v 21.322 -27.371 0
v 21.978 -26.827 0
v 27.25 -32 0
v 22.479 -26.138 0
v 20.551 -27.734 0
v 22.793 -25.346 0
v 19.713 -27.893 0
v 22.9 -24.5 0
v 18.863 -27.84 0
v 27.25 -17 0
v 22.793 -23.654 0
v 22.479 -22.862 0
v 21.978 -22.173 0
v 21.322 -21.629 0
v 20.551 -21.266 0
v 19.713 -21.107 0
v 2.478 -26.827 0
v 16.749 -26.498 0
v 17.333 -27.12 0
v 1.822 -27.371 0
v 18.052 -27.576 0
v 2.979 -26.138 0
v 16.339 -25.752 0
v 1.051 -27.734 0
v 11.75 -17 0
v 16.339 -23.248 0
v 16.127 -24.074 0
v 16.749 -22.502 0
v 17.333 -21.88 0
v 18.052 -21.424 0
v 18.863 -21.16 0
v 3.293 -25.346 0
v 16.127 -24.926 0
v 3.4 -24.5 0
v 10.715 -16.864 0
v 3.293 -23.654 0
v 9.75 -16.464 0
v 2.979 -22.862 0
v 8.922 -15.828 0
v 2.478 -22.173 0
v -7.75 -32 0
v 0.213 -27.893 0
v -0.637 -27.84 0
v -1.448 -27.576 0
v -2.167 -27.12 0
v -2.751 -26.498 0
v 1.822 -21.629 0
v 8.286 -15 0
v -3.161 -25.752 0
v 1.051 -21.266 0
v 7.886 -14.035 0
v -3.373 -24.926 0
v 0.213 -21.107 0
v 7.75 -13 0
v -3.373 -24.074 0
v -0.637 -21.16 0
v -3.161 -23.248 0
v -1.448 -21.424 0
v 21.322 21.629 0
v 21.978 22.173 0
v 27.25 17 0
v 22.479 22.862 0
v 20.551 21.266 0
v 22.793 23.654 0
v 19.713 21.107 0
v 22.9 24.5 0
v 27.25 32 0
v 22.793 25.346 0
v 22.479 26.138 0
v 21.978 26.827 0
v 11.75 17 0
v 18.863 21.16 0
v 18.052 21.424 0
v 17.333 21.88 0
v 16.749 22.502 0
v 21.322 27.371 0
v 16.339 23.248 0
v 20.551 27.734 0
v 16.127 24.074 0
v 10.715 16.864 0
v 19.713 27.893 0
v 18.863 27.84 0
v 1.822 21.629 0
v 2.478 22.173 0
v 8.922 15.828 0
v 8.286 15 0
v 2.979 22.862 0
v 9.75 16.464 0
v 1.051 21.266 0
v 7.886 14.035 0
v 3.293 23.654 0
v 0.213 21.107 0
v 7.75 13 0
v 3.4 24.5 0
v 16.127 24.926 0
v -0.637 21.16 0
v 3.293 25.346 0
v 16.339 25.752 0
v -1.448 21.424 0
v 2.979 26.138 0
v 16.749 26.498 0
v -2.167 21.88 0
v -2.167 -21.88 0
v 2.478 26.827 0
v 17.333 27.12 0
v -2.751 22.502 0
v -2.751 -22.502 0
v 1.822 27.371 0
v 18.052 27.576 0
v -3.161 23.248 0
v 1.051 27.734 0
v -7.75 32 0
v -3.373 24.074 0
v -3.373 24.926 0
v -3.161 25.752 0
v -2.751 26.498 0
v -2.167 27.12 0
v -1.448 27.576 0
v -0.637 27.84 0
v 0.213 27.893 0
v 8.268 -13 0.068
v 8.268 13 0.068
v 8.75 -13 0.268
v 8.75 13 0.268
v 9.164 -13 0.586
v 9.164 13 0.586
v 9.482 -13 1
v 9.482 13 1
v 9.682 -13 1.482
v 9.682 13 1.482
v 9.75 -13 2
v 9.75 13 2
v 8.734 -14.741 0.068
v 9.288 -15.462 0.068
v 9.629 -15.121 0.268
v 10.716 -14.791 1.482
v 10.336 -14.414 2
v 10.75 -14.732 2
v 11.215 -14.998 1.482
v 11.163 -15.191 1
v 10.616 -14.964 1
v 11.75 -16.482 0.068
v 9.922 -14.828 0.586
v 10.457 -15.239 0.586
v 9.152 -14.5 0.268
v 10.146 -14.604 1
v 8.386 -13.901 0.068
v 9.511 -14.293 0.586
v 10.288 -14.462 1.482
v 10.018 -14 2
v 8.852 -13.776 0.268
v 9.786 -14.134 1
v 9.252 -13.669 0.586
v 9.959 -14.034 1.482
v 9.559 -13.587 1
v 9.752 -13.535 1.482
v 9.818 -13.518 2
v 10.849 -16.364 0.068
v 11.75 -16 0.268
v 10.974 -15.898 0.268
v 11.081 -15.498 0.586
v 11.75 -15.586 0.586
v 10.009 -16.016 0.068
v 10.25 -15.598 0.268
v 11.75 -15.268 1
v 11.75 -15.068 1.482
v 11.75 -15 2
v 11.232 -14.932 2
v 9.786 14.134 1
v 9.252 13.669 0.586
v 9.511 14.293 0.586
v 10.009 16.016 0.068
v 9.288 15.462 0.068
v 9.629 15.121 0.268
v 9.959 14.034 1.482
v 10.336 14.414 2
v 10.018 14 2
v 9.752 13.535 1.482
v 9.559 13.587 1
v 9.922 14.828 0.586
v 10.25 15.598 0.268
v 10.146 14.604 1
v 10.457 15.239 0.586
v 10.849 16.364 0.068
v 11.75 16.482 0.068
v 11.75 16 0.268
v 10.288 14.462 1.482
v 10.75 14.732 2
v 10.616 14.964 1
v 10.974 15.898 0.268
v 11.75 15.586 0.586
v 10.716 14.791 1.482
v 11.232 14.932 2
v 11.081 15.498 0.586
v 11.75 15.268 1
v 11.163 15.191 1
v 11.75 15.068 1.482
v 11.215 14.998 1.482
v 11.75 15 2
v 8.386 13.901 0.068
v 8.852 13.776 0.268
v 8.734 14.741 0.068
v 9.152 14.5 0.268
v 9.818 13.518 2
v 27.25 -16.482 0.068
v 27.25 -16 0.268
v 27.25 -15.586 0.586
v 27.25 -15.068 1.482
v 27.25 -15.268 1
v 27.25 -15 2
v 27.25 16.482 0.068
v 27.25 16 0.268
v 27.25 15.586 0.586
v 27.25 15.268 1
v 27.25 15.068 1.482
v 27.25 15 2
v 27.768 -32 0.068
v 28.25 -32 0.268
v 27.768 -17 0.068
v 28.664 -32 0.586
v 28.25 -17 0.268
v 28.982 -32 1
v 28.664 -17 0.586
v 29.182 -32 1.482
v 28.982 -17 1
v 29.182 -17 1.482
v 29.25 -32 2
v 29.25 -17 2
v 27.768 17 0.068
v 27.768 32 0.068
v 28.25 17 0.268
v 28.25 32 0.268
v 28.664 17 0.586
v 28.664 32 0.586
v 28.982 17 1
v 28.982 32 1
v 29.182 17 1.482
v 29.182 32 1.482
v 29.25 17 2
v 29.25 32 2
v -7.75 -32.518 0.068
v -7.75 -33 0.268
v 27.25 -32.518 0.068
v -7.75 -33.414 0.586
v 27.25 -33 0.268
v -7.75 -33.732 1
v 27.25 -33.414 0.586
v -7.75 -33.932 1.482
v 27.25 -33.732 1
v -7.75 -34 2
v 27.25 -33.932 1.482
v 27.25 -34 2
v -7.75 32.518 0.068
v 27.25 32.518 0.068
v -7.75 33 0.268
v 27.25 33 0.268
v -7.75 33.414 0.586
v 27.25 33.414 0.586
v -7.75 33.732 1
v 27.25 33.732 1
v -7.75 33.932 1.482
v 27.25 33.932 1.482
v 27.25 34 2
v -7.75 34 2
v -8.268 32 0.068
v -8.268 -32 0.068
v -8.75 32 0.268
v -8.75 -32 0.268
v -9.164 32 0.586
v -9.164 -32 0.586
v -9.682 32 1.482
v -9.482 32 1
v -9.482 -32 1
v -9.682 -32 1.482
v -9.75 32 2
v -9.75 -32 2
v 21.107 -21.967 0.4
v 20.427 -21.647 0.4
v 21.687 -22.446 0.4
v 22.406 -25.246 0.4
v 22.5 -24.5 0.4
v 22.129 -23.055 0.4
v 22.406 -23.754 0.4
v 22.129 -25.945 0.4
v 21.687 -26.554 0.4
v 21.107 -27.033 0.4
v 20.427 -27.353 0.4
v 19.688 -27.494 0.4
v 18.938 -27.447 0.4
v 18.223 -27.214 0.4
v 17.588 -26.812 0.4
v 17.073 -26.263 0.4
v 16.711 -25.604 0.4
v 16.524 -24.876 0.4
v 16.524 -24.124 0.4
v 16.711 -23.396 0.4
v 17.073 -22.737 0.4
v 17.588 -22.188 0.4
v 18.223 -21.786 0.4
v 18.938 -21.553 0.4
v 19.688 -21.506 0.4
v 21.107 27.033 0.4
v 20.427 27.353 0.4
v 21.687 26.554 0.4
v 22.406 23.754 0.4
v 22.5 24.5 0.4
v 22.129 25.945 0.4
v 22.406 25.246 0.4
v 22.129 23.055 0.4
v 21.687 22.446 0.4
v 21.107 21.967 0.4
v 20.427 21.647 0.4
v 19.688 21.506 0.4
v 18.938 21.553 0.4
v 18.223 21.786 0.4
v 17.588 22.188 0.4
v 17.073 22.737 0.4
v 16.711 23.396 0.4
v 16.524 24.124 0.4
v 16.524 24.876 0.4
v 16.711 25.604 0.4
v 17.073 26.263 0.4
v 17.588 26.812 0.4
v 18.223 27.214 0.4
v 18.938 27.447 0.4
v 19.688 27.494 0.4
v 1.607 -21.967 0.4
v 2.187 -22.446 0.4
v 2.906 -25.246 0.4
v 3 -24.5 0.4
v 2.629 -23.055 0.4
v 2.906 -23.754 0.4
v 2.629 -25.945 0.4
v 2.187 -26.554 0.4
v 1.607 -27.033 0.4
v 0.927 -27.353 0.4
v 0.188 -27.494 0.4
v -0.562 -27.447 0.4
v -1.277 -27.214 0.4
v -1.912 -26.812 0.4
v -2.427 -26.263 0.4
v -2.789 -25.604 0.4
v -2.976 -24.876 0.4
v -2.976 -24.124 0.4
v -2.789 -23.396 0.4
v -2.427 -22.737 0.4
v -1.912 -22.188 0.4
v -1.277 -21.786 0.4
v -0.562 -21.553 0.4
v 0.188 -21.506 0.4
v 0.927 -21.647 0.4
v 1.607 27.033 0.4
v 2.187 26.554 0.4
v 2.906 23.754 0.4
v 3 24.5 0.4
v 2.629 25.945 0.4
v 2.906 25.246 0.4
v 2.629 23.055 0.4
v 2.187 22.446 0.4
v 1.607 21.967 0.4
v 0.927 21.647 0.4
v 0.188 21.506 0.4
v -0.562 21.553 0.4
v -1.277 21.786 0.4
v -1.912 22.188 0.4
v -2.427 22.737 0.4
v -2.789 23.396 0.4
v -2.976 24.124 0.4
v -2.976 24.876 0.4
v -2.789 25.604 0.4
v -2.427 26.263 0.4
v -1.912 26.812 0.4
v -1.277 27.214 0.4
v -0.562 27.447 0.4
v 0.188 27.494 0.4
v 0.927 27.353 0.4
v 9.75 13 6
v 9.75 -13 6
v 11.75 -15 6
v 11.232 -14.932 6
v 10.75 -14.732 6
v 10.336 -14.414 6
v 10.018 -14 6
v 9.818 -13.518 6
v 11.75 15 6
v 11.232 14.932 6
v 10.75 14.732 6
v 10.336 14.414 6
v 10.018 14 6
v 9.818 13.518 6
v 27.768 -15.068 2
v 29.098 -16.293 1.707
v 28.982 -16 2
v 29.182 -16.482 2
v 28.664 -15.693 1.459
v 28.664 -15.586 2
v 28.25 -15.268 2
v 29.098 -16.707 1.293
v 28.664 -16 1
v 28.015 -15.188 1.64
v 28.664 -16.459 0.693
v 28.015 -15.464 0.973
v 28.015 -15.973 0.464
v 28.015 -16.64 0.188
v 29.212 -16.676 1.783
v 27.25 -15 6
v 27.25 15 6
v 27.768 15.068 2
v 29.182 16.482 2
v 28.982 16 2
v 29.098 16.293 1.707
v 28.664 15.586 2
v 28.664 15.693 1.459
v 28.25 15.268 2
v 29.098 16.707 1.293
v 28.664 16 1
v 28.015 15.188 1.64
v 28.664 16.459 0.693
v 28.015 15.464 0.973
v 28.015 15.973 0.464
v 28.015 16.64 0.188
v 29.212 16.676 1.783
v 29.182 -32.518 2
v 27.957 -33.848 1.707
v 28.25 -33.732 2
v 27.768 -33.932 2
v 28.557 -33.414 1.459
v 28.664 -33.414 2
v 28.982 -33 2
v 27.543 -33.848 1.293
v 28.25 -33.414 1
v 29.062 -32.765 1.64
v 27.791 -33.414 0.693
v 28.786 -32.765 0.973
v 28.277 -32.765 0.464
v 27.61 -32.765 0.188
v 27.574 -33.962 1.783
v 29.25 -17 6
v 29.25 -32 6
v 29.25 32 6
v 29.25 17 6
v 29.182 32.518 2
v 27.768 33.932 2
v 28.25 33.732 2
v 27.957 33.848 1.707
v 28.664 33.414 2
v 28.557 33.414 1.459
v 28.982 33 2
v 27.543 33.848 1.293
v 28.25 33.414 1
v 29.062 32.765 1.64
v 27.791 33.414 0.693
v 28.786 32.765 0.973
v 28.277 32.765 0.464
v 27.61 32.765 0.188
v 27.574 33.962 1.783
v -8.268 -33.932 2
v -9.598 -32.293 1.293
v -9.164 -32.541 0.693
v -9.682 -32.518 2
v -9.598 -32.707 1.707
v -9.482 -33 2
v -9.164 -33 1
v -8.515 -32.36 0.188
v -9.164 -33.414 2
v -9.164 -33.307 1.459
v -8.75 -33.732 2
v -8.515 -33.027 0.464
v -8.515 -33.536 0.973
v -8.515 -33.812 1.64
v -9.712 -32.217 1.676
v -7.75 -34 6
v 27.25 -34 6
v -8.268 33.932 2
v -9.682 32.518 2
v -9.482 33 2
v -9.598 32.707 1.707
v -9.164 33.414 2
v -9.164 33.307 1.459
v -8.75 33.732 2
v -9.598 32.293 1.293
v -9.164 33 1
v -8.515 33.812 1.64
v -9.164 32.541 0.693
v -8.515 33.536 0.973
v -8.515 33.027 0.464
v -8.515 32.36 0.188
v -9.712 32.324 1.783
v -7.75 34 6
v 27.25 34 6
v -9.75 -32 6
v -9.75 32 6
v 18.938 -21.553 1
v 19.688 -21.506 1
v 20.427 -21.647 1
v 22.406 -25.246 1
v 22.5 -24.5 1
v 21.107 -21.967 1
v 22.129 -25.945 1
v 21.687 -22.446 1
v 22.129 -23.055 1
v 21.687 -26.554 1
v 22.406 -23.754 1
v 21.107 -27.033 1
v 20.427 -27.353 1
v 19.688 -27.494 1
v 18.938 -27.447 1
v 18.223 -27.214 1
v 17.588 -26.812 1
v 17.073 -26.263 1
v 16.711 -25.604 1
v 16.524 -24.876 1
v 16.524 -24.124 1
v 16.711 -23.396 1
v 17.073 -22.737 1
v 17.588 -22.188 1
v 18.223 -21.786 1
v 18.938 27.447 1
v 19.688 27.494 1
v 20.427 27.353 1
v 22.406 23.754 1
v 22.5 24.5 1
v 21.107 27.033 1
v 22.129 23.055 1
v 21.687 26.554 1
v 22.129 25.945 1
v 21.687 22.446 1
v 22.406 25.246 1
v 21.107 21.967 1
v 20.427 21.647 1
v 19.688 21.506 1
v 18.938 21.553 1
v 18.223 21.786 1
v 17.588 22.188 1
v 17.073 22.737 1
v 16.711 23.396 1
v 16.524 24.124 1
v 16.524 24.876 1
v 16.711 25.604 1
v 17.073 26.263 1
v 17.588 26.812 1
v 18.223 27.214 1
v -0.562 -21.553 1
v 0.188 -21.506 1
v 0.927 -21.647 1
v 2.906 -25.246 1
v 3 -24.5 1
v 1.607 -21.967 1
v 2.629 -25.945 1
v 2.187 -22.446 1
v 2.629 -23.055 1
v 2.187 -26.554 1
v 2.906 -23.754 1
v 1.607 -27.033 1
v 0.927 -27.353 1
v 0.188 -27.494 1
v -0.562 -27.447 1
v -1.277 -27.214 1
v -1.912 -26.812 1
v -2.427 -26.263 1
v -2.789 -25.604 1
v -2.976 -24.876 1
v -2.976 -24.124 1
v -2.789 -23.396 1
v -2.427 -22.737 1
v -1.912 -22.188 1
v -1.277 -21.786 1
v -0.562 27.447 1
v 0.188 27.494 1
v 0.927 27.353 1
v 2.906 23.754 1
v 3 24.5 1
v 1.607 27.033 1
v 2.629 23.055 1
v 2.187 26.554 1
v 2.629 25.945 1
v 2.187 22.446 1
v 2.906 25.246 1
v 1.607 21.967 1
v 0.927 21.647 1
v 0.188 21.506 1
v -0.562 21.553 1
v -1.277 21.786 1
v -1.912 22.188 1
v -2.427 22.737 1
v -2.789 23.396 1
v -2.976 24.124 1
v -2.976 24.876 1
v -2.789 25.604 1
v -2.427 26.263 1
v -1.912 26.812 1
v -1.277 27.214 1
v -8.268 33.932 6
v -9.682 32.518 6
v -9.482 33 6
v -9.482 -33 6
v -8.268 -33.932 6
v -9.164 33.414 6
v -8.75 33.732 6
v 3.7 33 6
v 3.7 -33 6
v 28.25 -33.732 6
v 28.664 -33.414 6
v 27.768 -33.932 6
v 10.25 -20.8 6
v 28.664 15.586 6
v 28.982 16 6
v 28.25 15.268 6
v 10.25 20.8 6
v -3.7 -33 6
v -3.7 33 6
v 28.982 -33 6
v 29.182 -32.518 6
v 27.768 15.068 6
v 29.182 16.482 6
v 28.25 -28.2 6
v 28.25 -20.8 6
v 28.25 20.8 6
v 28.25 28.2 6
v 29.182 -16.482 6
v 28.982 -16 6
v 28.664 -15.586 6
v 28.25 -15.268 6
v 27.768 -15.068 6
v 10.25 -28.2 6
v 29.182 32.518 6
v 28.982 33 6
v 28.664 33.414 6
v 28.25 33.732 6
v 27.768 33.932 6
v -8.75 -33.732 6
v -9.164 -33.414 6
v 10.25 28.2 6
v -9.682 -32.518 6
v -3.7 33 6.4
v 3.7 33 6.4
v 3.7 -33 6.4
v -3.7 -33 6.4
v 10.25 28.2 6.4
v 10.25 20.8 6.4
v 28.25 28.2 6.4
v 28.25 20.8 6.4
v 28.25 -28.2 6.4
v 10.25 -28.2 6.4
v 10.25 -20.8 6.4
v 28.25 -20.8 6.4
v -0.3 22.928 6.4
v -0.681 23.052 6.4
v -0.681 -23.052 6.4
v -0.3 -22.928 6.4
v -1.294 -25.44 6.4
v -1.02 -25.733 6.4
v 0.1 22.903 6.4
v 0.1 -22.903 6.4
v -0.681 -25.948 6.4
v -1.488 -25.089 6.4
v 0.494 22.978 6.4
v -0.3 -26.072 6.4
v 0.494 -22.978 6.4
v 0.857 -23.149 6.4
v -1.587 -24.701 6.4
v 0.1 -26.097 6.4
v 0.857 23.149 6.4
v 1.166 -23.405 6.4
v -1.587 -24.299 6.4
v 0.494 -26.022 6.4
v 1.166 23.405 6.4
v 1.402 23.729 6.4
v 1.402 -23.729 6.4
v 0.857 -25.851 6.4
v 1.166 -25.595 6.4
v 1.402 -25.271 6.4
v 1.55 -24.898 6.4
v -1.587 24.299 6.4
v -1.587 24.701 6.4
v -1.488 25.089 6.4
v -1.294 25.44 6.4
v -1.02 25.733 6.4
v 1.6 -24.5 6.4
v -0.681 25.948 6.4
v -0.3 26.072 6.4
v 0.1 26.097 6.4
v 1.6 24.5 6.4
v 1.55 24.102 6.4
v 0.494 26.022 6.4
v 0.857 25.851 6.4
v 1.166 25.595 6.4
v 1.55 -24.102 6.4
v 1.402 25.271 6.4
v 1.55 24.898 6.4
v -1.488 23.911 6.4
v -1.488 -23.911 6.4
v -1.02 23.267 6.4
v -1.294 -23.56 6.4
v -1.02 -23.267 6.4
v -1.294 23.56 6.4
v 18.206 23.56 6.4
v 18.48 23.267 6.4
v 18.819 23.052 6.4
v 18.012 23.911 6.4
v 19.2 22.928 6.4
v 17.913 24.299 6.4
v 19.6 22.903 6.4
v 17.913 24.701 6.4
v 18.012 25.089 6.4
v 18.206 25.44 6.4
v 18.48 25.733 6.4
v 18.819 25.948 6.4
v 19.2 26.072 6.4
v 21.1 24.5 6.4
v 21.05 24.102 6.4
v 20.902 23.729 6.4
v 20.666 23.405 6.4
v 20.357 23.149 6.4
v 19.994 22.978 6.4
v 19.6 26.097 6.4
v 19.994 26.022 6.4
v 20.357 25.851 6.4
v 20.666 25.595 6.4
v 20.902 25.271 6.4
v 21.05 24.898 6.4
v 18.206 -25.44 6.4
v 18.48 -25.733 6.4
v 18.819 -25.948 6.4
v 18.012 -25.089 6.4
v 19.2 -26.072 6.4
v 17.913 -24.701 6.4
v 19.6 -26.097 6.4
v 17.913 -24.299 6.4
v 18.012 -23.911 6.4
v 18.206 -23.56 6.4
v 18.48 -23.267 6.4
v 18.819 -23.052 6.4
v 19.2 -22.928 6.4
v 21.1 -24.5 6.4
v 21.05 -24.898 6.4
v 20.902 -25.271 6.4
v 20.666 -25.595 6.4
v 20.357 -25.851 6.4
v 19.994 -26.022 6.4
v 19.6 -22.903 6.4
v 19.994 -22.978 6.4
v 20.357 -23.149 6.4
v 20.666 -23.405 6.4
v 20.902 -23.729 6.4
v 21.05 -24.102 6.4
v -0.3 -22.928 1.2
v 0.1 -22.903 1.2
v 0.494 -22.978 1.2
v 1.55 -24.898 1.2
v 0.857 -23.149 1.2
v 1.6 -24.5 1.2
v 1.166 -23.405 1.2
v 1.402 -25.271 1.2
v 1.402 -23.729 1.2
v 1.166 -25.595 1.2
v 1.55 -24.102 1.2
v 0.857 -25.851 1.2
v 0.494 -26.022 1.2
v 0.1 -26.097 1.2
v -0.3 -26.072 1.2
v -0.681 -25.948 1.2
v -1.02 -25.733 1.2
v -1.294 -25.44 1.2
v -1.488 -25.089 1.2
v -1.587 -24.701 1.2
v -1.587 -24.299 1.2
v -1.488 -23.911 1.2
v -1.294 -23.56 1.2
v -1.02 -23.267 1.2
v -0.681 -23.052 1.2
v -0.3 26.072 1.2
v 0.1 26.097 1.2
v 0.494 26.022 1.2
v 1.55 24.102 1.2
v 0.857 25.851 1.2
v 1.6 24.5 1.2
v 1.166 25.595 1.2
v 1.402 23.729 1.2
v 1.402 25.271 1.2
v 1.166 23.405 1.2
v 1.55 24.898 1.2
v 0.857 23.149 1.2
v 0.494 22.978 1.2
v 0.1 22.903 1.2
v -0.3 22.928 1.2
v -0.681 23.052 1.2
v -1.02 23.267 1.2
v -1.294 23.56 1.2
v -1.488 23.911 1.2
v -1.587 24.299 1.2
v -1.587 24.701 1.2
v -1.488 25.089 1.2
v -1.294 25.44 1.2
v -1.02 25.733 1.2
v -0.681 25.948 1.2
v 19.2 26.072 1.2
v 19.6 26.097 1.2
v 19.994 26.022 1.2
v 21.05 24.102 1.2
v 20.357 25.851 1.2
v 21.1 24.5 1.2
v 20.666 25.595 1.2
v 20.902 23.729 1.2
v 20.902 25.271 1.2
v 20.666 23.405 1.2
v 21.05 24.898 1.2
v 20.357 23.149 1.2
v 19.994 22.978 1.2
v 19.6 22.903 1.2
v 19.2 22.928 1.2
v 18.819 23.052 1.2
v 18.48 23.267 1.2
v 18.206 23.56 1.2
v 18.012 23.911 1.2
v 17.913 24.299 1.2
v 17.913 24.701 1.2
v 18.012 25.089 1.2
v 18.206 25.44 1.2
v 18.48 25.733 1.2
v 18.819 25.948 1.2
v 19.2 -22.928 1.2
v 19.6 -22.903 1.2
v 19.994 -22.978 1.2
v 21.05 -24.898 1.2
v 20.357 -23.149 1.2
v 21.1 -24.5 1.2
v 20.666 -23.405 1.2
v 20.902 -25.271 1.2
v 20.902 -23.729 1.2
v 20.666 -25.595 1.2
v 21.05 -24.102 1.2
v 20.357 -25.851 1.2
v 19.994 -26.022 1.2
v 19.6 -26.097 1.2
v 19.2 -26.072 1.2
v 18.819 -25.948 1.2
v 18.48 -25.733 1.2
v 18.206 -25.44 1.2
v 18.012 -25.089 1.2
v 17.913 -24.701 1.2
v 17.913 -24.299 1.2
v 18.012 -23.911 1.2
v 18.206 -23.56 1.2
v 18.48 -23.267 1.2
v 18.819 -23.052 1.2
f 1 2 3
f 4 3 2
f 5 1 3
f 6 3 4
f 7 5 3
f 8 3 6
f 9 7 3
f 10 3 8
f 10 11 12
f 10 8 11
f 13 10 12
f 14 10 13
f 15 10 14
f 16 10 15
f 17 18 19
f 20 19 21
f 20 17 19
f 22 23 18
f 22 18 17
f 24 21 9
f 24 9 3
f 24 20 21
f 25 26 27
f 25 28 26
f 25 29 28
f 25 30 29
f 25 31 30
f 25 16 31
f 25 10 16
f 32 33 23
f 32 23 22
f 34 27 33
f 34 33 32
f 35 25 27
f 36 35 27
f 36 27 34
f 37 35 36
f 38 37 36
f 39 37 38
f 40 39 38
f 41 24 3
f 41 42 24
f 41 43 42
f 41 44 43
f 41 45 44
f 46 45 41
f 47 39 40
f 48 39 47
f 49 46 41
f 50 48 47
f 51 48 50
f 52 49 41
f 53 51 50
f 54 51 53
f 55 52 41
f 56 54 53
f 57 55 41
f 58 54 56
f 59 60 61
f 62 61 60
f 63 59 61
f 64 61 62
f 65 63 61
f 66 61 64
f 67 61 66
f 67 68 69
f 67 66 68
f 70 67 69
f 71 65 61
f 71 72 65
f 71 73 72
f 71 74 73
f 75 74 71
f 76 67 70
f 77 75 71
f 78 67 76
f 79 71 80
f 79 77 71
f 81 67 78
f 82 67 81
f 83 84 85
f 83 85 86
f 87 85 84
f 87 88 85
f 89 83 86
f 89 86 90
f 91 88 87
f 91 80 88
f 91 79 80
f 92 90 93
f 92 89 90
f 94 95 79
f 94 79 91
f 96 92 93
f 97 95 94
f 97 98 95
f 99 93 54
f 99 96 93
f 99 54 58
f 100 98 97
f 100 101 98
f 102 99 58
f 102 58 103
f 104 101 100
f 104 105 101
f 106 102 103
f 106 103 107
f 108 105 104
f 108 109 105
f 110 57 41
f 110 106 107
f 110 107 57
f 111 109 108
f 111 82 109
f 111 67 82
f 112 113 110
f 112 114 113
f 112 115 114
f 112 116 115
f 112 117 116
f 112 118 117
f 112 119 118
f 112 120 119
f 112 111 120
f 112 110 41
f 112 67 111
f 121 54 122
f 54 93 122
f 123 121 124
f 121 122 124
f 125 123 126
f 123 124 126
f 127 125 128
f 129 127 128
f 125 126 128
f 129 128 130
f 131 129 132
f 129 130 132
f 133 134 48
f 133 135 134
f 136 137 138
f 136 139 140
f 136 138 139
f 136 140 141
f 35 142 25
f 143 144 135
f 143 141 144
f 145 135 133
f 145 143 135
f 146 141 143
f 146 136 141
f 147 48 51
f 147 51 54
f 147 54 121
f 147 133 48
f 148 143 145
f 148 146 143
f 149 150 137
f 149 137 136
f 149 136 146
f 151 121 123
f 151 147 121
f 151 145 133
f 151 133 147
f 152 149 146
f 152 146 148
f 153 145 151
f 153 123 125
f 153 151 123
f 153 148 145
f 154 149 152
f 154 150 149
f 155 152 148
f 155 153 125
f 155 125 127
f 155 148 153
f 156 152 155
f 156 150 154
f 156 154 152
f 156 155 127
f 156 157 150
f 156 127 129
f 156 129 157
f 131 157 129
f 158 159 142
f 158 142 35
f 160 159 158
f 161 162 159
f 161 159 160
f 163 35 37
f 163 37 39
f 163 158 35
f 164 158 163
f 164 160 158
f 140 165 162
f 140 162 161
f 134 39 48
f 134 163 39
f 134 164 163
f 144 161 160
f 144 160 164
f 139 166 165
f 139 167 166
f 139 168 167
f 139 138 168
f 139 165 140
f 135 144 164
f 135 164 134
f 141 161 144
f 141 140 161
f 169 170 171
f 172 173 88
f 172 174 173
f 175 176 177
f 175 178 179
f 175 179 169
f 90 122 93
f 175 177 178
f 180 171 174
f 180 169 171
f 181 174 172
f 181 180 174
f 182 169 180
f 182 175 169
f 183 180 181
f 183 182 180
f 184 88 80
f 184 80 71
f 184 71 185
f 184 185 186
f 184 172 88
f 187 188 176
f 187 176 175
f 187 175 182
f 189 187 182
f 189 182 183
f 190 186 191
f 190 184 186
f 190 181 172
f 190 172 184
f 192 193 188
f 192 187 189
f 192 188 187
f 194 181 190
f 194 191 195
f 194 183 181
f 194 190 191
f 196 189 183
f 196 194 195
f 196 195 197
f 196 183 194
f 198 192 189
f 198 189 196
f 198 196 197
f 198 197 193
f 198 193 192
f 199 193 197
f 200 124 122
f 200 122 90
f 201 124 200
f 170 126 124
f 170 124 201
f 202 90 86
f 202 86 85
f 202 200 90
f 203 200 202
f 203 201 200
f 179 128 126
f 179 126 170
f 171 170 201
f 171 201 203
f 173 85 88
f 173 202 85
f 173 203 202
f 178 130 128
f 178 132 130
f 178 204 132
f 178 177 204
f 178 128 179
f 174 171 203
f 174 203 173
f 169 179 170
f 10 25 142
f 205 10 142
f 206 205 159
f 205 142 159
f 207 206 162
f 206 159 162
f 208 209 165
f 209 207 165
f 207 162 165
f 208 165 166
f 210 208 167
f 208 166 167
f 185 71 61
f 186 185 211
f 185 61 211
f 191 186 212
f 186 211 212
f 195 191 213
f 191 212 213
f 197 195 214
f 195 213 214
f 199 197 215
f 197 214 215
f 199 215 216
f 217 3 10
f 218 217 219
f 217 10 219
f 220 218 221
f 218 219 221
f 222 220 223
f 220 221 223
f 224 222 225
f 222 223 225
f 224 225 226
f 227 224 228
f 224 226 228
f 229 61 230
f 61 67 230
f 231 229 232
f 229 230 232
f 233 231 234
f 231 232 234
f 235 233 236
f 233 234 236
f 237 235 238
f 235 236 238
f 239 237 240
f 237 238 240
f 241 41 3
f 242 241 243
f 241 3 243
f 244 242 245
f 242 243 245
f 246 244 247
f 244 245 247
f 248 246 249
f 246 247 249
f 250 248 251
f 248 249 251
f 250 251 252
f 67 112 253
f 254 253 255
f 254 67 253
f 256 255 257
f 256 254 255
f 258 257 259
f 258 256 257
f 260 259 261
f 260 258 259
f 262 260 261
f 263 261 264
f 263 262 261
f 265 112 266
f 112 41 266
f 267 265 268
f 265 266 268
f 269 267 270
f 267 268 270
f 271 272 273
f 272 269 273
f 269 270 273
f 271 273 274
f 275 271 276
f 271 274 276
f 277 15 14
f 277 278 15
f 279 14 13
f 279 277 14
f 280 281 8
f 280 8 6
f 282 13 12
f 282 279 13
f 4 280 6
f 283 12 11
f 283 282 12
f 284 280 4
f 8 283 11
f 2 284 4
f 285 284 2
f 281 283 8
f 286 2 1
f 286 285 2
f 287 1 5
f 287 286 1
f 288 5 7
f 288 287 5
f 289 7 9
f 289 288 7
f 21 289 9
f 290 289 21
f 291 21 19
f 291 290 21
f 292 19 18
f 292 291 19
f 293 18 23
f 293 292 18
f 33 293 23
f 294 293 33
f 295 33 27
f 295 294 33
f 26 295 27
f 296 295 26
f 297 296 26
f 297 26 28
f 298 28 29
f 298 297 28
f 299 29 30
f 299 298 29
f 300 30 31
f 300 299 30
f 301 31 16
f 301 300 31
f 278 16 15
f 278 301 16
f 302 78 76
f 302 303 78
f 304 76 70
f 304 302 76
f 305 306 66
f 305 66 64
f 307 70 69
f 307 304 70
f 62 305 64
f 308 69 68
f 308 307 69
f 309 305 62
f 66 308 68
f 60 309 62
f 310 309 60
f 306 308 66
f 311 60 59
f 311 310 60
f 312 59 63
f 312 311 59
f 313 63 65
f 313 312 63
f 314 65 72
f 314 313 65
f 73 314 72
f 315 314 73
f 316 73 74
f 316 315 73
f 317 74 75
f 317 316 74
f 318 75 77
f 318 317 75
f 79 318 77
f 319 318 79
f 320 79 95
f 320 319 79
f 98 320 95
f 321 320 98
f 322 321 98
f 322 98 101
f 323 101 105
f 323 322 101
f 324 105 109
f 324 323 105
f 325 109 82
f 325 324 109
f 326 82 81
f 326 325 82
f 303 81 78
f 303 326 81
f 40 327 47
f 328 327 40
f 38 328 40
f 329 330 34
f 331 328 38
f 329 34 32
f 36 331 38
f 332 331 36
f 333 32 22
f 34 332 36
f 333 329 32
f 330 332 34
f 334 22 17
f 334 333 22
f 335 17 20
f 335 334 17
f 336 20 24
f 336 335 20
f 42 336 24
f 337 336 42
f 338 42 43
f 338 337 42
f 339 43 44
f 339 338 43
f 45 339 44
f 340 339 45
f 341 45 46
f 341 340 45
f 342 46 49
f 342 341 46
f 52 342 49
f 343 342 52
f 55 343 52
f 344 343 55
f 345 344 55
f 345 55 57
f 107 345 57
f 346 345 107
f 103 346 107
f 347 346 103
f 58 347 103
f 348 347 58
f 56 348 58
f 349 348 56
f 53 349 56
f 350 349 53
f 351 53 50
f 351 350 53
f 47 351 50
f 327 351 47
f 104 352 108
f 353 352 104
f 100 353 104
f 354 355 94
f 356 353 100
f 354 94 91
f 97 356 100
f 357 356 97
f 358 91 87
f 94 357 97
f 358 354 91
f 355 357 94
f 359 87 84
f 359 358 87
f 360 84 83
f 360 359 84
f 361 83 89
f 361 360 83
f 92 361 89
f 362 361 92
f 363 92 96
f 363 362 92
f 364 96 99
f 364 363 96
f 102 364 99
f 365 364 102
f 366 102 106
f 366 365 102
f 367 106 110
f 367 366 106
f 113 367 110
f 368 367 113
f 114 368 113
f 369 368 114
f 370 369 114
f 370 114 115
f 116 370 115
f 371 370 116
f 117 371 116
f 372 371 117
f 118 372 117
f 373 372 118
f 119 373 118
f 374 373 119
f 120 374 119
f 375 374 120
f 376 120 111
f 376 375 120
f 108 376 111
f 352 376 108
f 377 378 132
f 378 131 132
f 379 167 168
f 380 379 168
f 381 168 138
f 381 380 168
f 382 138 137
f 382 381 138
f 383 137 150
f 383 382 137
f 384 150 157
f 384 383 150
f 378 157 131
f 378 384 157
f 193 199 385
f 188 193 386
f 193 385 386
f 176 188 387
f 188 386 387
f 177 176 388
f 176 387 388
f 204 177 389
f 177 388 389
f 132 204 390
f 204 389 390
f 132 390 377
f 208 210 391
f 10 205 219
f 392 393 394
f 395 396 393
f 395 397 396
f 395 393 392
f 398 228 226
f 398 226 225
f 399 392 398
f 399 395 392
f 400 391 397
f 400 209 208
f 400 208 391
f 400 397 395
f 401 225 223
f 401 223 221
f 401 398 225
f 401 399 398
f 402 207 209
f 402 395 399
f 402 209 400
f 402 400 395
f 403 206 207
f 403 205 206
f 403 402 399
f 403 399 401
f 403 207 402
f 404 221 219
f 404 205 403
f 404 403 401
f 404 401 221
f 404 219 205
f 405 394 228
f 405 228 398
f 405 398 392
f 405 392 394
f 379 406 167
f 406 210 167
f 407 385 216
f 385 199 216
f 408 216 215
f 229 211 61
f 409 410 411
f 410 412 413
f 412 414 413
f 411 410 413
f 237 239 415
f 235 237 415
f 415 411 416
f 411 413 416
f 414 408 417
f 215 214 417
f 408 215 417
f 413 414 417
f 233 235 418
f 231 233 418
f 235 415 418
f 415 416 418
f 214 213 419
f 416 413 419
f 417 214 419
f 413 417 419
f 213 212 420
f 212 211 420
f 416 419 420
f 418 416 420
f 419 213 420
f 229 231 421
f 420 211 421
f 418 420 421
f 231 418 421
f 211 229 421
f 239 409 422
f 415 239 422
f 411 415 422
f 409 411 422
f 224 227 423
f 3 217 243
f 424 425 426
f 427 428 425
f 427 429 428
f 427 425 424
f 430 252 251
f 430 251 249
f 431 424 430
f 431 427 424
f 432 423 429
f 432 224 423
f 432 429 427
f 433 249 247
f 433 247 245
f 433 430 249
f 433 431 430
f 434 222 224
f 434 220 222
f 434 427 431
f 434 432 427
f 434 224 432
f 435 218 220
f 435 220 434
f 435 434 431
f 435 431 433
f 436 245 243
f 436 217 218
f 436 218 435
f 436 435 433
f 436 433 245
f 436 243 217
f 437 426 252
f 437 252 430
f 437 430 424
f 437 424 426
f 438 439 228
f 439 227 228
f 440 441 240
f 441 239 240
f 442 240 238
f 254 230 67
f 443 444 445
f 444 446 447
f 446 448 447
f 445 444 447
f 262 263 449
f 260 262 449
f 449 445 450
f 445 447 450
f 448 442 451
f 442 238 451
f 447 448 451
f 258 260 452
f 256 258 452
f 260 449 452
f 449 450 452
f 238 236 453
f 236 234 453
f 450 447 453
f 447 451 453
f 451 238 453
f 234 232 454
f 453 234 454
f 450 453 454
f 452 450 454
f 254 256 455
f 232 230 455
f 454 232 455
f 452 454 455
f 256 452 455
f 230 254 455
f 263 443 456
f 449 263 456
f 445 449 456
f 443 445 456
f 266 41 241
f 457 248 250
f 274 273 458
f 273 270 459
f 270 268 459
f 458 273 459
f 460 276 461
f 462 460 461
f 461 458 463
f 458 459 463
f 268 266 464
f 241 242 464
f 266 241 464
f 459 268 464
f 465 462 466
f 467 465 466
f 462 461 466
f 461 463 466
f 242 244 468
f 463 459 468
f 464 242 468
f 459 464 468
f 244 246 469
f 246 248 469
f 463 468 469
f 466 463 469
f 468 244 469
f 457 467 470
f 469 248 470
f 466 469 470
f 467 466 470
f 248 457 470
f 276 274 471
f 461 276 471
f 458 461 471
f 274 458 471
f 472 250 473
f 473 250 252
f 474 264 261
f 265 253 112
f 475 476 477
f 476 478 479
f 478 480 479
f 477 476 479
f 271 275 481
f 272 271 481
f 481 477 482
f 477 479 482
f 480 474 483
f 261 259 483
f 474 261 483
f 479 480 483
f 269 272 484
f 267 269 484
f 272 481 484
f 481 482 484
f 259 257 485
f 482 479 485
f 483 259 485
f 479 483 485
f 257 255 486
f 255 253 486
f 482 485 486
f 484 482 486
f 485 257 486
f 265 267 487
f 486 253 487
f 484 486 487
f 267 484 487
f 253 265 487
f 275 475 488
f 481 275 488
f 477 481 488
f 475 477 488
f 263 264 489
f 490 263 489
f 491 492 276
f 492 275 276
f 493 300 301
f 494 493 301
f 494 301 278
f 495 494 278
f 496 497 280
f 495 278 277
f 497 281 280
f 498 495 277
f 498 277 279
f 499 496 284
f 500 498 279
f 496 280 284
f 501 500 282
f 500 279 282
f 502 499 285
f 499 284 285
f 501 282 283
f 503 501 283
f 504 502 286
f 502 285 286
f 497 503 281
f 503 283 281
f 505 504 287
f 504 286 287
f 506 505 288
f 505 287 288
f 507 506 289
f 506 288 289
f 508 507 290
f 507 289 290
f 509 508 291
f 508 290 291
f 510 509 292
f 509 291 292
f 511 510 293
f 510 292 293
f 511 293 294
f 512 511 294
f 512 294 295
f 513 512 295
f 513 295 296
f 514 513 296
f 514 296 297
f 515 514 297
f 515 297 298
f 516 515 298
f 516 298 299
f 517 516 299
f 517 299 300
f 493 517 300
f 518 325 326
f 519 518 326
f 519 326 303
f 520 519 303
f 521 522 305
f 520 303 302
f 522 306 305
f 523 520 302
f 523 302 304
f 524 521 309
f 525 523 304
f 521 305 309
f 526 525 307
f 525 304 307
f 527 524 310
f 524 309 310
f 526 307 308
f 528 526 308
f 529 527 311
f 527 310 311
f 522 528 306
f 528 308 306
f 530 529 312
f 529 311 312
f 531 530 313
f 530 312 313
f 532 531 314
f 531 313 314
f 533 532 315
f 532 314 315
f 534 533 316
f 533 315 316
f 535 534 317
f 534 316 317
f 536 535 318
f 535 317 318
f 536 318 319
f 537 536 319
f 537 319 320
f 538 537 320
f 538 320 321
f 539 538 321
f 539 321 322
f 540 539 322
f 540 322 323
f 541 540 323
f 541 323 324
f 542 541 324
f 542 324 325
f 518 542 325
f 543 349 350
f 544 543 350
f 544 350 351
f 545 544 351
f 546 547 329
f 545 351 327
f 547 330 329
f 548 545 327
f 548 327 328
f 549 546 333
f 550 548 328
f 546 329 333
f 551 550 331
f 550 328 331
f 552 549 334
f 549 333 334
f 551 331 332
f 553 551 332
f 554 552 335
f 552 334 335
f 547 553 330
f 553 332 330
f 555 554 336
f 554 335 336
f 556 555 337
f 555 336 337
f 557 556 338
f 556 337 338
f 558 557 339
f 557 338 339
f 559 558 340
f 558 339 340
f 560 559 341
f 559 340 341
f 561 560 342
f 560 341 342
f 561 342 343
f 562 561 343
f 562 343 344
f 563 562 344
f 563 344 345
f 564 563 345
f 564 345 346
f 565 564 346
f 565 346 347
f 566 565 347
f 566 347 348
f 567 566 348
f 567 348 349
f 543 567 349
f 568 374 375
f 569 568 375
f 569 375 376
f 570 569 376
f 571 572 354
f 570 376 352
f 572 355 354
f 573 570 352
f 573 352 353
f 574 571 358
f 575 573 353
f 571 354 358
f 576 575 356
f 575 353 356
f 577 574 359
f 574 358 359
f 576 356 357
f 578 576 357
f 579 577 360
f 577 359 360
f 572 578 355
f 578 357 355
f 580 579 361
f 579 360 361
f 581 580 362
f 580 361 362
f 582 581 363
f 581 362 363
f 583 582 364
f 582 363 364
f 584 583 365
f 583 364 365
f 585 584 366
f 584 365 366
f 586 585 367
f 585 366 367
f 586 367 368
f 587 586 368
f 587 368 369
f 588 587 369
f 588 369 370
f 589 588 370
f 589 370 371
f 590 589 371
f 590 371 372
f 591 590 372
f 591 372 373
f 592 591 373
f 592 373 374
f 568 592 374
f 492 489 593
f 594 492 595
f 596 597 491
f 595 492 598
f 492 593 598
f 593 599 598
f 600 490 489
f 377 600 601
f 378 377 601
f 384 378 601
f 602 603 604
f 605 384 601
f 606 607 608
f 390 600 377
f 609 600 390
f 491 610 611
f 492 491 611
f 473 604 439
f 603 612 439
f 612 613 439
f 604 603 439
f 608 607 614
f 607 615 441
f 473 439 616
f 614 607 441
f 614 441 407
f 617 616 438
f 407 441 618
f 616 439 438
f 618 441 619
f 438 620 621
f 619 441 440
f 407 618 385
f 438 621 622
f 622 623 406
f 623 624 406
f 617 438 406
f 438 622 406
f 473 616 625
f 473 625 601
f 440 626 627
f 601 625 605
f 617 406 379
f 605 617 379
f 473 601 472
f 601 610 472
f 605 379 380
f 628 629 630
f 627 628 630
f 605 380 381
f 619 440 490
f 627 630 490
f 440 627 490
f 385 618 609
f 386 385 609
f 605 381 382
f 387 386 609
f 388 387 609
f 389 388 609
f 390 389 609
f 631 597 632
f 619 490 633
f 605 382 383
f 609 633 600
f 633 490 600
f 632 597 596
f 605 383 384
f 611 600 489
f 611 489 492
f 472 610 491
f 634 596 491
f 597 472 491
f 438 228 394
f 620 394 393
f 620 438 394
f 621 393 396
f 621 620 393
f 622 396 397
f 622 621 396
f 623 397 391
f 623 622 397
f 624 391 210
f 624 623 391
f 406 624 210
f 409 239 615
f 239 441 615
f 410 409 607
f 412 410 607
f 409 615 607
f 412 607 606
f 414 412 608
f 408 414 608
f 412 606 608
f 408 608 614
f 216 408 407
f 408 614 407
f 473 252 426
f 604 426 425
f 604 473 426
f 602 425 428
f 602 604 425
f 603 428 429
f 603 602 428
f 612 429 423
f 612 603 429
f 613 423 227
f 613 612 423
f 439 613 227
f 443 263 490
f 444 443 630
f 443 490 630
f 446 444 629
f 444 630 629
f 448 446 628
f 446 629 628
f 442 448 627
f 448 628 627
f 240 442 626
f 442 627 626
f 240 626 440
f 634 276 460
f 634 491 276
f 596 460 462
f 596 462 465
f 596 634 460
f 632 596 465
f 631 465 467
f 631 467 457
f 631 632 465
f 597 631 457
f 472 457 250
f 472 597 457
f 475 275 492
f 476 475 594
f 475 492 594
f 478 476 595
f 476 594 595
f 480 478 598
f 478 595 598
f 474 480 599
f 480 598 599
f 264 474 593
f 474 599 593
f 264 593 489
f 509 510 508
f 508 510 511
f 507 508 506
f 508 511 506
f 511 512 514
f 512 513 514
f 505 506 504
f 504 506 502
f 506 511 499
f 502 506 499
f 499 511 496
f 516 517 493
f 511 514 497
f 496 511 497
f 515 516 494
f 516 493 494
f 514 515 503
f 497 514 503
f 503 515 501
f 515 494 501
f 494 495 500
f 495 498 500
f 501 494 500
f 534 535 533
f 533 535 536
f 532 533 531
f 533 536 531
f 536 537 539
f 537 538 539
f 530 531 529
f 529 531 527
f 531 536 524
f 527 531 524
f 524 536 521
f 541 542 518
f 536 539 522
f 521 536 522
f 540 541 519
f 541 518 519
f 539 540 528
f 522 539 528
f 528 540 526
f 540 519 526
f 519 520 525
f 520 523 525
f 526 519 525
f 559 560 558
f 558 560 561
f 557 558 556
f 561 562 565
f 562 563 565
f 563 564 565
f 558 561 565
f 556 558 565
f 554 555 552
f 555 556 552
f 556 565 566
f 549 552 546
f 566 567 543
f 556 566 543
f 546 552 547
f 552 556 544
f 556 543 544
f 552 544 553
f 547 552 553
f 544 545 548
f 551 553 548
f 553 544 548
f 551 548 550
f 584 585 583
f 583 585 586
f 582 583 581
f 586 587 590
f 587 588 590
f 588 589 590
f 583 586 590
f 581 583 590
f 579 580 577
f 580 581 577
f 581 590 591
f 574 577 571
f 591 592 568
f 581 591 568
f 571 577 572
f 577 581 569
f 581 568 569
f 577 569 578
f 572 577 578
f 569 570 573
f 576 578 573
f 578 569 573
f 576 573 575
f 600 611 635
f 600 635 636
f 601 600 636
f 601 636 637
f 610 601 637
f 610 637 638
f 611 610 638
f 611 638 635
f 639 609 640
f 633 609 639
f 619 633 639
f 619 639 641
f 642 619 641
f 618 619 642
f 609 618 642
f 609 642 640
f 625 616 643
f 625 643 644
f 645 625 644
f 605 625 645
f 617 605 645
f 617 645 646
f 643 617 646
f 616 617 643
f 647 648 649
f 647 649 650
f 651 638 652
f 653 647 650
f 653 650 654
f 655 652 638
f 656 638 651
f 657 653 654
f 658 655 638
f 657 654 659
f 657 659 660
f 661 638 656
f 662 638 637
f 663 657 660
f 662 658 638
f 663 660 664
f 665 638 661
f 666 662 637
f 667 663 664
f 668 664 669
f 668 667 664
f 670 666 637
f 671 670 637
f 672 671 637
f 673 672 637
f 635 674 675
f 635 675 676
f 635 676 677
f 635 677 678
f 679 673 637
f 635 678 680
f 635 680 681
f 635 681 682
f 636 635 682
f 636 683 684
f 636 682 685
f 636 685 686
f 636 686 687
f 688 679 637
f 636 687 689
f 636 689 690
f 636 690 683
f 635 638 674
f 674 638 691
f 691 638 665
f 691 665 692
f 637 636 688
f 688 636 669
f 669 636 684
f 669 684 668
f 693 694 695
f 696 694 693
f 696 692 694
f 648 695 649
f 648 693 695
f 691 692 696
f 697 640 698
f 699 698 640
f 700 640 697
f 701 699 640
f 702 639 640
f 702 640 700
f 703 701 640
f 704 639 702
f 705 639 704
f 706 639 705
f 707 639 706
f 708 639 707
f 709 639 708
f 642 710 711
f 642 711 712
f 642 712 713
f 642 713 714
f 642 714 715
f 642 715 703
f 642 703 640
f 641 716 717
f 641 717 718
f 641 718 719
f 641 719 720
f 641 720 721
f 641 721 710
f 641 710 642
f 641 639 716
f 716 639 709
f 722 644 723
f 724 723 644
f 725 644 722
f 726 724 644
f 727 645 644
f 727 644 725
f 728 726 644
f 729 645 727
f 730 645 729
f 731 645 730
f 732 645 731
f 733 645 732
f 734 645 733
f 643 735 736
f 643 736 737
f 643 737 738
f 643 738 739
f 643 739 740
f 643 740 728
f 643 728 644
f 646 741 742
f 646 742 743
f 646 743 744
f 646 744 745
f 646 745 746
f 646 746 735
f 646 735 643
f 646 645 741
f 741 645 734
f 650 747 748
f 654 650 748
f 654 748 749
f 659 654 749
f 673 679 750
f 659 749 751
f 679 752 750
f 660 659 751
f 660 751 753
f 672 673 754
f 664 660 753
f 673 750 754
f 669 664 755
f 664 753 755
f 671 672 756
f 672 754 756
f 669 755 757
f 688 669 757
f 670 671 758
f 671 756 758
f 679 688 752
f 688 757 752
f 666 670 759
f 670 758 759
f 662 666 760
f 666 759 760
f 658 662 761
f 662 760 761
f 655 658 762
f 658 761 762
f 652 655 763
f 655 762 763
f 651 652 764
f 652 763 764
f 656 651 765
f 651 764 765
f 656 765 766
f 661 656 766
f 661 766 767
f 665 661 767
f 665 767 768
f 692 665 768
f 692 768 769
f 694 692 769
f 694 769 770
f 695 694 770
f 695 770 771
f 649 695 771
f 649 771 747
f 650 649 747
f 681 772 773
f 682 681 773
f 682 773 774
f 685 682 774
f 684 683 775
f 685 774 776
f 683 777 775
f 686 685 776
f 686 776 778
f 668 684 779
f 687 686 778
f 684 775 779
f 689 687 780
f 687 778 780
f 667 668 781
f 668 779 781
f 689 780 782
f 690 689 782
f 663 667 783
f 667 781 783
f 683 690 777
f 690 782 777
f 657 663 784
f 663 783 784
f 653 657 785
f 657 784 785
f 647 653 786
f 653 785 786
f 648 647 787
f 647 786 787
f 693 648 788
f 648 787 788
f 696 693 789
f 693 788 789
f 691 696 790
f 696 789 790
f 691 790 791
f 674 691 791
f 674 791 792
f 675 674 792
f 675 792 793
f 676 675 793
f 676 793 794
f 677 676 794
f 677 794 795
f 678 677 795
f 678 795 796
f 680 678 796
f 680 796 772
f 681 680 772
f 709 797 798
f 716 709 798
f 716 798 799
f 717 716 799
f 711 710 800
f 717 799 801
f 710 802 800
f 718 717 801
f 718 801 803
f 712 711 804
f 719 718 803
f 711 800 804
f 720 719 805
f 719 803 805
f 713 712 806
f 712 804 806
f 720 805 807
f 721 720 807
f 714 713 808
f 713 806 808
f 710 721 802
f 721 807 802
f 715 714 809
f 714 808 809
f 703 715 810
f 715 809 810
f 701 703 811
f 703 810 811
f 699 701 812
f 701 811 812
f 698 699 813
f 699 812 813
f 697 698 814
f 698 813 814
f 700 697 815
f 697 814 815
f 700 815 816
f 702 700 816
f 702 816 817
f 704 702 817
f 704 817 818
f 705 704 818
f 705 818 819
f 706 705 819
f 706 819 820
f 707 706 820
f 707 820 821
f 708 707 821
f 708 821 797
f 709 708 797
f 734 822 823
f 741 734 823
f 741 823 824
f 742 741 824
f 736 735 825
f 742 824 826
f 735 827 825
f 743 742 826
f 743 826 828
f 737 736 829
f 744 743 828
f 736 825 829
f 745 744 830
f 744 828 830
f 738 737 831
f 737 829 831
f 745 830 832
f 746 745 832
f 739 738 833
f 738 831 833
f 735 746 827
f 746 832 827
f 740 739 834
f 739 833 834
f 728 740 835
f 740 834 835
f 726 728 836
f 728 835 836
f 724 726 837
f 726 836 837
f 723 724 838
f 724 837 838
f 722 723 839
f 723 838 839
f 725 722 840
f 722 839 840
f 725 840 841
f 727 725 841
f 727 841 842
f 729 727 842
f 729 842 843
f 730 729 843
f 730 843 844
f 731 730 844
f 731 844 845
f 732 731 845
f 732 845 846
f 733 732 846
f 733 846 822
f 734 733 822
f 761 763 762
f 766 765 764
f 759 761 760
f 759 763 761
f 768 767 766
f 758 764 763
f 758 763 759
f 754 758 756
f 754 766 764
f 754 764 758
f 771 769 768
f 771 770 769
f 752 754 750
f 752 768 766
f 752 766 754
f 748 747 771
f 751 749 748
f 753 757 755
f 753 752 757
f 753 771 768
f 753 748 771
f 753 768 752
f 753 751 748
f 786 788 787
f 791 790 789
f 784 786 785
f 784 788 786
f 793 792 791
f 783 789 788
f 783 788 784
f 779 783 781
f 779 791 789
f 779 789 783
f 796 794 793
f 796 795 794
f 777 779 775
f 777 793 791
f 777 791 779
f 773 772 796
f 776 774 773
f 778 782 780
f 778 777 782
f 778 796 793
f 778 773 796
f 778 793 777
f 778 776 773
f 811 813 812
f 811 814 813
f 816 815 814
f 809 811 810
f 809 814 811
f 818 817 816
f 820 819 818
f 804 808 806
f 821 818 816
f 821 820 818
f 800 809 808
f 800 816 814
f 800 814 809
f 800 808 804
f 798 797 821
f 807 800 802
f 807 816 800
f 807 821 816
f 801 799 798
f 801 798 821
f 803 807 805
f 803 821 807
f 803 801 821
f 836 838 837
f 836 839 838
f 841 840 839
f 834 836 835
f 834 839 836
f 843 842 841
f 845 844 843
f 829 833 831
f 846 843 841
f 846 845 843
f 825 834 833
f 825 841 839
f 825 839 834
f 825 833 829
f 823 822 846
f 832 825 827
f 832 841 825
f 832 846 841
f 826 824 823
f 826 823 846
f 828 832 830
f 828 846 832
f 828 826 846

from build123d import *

# Parameters (mm, degrees)
PAD_DEPTH       = 6
SKETCH002_W     = 7.4
SKETCH002_H     = 66
SKETCH002_W_2   = 18
SKETCH002_H_2   = 7.4
PAD001_DEPTH    = 0.4
SKETCH003_R     = 1.6
POCKET_DEPTH    = 6.401
SKETCH004_R     = 3
POCKET001_DEPTH = 1
SKETCH005_R     = 4
PAD002_DEPTH    = 0.2
CHAMFER_SIZE    = 0.4
FILLET_R        = 2


with BuildPart() as part:
    # Sketch → Pad (new body)
    with BuildSketch(Plane.XY):
        Polygon((-9.75, 34), (-9.75, -34), (29.25, -34), (29.25, -15), (9.75, -15), (9.75, 15), (29.25, 15), (29.25, 34), (9.75, 34), align=None)
    extrude(amount=PAD_DEPTH)

    # Sketch002 → Pad001 (new body)
    with BuildSketch(Plane.XY.offset(6)):
        Rectangle(SKETCH002_W, SKETCH002_H)
        with Locations((19.25, 24.5)):
            Rectangle(SKETCH002_W_2, SKETCH002_H_2)
        with Locations((19.25, -24.5)):
            Rectangle(SKETCH002_W_2, SKETCH002_H_2)
    extrude(amount=PAD001_DEPTH)

    # Sketch003 → Pocket (cut, through all)
    with BuildSketch(Plane(origin=(0, 0, 0), x_dir=(1, 0, 0), z_dir=(0, 0, -1))):
        with Locations((0, 24.5)):
            Circle(SKETCH003_R)
        with Locations((19.5, 24.5)):
            Circle(SKETCH003_R)
        with Locations((0, -24.5)):
            Circle(SKETCH003_R)
        with Locations((19.5, -24.5)):
            Circle(SKETCH003_R)
    extrude(amount=-POCKET_DEPTH, mode=Mode.SUBTRACT)

    # Sketch004 → Pocket001 (cut)
    with BuildSketch(Plane(origin=(0, 0, 0), x_dir=(1, 0, 0), z_dir=(0, 0, -1))):
        with Locations((0, 24.5)):
            Circle(SKETCH004_R)
        with Locations((19.5, 24.5)):
            Circle(SKETCH004_R)
        with Locations((0, -24.5)):
            Circle(SKETCH004_R)
        with Locations((19.5, -24.5)):
            Circle(SKETCH004_R)
    extrude(amount=-POCKET001_DEPTH, mode=Mode.SUBTRACT)

    # Sketch005 → Pad002 (new body)
    with BuildSketch(Plane(origin=(0, 0, 1), x_dir=(1, 0, 0), z_dir=(0, 0, -1))):
        with Locations((0, 24.5)):
            Circle(SKETCH005_R)
        with Locations((19.5, 24.5)):
            Circle(SKETCH005_R)
        with Locations((0, -24.5)):
            Circle(SKETCH005_R)
        with Locations((19.5, -24.5)):
            Circle(SKETCH005_R)
    extrude(amount=-PAD002_DEPTH)

    # Chamfer
    chamfer_edges = [part.edges().sort_by_distance(p)[0] for p in [
        (16.5, -24.5, 0),
        (16.5, 24.5, 0),
        (-3, -24.5, 0),
        (-3, 24.5, 0),
    ]]
    chamfer(chamfer_edges, length=CHAMFER_SIZE)

    # Fillet
    fillet_edges = [part.edges().sort_by_distance(p)[0] for p in [
        (9.75, 15, 3),
        (9.75, 0, 0),
        (19.5, 15, 0),
        (9.75, -15, 3),
        (19.5, -15, 0),
        (29.25, -15, 3),
        (29.25, 15, 3),
        (29.25, 24.5, 0),
        (29.25, -24.5, 0),
        (29.25, -34, 3),
        (9.75, -34, 0),
        (29.25, 34, 3),
        (9.75, 34, 0),
        (-9.75, 34, 3),
        (-9.75, 0, 0),
        (-9.75, -34, 3),
    ]]
    fillet(fillet_edges, radius=FILLET_R)


solid = part.part
